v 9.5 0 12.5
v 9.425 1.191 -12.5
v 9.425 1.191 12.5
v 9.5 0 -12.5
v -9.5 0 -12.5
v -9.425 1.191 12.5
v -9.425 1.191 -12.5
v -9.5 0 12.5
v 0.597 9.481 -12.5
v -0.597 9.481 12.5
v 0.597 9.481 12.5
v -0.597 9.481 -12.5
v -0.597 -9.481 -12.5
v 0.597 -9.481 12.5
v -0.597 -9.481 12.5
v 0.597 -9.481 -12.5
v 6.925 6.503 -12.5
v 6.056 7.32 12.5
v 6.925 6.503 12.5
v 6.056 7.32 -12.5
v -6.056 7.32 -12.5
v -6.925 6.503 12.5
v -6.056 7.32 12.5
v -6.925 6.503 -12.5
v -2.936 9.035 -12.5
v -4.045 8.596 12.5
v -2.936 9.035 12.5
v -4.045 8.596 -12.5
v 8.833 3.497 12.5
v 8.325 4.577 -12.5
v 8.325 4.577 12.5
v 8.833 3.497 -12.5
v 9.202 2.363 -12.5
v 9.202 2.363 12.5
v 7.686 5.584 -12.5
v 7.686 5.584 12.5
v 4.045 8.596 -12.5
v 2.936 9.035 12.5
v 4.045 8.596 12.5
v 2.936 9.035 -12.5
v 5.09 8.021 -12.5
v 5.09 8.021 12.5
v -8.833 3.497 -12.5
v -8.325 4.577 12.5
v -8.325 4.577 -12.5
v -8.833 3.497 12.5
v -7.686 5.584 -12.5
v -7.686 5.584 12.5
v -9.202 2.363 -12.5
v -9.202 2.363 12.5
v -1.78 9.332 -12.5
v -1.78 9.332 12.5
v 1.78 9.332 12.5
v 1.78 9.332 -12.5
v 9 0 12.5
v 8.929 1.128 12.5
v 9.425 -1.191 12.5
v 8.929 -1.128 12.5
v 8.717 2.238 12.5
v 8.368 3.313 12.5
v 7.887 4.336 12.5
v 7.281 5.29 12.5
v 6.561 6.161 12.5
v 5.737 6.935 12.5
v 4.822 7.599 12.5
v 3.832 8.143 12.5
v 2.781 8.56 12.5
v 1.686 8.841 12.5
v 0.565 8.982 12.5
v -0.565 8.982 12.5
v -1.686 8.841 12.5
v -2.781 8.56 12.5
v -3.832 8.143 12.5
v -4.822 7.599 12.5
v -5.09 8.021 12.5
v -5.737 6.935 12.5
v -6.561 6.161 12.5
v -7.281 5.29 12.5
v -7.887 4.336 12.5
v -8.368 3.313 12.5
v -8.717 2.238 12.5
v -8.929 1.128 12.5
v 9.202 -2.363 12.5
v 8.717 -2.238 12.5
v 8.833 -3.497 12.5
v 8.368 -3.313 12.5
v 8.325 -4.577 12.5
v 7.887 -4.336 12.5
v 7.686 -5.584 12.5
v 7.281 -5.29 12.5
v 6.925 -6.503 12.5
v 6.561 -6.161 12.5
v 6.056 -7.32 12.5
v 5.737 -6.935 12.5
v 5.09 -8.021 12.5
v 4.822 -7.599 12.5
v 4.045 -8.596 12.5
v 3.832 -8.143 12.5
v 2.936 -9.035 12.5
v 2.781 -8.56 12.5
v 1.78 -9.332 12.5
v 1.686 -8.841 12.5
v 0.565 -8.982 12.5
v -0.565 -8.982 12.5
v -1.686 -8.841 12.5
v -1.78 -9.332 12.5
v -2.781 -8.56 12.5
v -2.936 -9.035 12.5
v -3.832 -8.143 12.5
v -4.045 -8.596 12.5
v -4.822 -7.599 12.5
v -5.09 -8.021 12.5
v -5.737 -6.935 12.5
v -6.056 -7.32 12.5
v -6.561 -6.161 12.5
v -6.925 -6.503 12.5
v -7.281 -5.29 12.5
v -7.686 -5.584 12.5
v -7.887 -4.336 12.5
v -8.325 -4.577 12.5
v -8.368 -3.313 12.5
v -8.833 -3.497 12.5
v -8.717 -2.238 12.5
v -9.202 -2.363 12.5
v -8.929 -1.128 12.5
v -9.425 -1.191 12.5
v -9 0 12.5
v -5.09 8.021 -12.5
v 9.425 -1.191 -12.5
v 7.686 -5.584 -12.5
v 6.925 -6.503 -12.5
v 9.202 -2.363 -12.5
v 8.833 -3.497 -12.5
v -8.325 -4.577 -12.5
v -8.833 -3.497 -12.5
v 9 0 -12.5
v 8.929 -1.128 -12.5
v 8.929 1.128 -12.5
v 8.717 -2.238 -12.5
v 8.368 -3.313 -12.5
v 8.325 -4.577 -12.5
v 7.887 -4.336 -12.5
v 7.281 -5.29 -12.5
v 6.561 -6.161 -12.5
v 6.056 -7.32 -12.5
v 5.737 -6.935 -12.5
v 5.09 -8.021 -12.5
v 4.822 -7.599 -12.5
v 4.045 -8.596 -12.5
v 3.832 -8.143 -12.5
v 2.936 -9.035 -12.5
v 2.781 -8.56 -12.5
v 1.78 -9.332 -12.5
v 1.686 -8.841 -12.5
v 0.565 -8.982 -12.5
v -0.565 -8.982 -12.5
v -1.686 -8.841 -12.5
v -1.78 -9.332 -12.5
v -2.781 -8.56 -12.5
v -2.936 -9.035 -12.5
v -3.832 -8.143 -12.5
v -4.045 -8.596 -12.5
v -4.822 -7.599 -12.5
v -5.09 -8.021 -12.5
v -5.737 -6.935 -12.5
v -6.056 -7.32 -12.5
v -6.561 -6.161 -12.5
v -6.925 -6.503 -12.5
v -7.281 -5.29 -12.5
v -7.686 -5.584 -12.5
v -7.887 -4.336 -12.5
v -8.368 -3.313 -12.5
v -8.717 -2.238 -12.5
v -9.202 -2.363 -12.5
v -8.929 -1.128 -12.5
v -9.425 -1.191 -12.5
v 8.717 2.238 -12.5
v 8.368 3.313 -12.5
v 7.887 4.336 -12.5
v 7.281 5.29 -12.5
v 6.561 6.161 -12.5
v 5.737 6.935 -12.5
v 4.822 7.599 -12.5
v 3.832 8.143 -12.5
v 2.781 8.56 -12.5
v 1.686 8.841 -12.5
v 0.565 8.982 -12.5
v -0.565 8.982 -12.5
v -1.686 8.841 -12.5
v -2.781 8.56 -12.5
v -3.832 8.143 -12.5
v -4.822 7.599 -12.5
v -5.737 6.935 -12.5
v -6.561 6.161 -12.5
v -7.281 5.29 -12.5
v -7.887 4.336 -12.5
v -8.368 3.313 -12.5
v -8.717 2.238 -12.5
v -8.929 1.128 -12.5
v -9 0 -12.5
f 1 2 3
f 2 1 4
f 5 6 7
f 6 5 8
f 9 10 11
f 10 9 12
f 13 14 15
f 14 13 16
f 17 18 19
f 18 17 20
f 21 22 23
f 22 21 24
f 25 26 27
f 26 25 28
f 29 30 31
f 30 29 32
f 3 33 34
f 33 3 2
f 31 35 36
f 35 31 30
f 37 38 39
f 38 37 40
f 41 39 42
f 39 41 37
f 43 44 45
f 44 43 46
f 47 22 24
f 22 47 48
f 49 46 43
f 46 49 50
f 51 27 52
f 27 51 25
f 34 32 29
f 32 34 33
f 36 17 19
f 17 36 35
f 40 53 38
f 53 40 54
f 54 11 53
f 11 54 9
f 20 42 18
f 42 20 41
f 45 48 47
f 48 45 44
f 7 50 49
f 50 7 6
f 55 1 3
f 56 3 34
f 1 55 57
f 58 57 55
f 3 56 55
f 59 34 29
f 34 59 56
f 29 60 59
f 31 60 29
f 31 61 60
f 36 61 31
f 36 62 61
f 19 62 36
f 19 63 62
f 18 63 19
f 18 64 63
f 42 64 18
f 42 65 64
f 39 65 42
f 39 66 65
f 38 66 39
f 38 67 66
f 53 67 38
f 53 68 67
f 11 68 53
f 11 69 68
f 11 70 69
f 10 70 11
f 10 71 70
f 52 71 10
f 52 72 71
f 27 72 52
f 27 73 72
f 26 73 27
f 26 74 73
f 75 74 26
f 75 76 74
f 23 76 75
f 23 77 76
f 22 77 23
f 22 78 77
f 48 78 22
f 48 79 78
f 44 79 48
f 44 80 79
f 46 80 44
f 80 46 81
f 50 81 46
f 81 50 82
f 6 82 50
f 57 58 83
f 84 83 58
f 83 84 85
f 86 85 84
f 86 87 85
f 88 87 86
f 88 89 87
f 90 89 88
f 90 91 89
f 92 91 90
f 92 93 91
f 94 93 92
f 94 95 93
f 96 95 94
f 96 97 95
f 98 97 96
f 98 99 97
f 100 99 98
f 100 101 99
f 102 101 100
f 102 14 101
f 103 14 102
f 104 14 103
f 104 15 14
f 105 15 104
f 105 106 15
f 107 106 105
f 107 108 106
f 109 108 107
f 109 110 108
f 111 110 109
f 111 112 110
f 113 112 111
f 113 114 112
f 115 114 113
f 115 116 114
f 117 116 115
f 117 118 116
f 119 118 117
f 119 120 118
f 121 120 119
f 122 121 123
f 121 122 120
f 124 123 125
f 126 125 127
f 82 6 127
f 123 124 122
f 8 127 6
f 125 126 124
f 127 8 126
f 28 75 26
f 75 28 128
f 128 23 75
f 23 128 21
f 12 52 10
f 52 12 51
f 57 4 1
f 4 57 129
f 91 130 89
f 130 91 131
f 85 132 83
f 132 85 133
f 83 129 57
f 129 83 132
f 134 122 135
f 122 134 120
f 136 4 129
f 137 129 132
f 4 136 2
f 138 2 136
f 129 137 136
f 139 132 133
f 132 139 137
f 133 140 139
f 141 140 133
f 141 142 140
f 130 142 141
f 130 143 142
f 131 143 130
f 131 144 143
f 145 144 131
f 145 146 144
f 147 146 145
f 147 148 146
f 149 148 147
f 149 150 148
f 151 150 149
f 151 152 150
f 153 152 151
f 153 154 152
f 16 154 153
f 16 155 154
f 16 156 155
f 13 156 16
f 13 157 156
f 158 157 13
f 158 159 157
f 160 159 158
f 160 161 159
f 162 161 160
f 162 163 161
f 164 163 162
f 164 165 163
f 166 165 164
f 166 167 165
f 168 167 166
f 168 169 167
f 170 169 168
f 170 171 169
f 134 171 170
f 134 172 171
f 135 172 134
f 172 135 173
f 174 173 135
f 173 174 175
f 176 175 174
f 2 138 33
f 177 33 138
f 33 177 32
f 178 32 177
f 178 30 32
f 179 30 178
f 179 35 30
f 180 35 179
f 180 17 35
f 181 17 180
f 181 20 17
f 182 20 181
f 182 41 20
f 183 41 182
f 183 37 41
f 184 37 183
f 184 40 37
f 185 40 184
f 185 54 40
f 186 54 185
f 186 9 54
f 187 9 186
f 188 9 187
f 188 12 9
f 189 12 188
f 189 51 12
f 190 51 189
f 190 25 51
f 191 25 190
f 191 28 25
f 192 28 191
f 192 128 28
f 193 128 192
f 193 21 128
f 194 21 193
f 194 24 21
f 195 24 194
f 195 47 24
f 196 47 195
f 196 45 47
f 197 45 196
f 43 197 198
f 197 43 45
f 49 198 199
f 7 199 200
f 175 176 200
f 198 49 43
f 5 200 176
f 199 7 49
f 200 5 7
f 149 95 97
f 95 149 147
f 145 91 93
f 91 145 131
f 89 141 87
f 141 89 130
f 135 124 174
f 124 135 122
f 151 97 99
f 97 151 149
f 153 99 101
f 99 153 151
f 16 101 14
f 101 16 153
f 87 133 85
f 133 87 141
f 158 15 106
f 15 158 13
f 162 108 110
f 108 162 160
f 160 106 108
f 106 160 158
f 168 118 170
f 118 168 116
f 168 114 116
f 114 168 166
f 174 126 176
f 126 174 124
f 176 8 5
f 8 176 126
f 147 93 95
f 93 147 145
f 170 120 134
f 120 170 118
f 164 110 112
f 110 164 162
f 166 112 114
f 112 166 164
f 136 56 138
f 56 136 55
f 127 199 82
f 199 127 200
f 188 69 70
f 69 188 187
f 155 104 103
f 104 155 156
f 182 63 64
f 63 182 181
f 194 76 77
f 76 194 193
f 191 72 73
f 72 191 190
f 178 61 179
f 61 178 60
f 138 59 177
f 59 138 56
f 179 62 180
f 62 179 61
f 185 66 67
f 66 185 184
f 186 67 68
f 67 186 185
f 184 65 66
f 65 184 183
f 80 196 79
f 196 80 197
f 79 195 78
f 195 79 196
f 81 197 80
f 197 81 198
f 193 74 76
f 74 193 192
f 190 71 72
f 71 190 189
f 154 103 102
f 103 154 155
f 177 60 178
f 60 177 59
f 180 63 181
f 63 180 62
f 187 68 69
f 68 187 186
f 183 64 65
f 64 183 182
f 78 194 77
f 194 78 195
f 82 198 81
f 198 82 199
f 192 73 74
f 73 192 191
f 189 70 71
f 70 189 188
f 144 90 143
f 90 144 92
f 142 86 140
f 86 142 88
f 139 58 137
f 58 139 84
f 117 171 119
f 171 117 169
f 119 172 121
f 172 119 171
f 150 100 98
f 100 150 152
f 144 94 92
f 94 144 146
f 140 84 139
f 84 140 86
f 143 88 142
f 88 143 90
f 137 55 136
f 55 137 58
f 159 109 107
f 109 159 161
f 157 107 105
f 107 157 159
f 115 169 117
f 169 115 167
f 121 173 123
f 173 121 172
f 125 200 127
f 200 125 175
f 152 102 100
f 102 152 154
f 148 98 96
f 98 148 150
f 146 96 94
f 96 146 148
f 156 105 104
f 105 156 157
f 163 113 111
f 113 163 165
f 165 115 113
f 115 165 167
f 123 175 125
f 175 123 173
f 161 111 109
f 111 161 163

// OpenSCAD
$fn = 50;


difference() {
	union() {
		translate(v = [0, 0, -12.5000000000]) {
			cylinder(h = 25, r = 9.5000000000);
		}
	}
	union() {
		translate(v = [0, 0, -100.0000000000]) {
			cylinder(h = 200, r = 9);
		}
	}
}
